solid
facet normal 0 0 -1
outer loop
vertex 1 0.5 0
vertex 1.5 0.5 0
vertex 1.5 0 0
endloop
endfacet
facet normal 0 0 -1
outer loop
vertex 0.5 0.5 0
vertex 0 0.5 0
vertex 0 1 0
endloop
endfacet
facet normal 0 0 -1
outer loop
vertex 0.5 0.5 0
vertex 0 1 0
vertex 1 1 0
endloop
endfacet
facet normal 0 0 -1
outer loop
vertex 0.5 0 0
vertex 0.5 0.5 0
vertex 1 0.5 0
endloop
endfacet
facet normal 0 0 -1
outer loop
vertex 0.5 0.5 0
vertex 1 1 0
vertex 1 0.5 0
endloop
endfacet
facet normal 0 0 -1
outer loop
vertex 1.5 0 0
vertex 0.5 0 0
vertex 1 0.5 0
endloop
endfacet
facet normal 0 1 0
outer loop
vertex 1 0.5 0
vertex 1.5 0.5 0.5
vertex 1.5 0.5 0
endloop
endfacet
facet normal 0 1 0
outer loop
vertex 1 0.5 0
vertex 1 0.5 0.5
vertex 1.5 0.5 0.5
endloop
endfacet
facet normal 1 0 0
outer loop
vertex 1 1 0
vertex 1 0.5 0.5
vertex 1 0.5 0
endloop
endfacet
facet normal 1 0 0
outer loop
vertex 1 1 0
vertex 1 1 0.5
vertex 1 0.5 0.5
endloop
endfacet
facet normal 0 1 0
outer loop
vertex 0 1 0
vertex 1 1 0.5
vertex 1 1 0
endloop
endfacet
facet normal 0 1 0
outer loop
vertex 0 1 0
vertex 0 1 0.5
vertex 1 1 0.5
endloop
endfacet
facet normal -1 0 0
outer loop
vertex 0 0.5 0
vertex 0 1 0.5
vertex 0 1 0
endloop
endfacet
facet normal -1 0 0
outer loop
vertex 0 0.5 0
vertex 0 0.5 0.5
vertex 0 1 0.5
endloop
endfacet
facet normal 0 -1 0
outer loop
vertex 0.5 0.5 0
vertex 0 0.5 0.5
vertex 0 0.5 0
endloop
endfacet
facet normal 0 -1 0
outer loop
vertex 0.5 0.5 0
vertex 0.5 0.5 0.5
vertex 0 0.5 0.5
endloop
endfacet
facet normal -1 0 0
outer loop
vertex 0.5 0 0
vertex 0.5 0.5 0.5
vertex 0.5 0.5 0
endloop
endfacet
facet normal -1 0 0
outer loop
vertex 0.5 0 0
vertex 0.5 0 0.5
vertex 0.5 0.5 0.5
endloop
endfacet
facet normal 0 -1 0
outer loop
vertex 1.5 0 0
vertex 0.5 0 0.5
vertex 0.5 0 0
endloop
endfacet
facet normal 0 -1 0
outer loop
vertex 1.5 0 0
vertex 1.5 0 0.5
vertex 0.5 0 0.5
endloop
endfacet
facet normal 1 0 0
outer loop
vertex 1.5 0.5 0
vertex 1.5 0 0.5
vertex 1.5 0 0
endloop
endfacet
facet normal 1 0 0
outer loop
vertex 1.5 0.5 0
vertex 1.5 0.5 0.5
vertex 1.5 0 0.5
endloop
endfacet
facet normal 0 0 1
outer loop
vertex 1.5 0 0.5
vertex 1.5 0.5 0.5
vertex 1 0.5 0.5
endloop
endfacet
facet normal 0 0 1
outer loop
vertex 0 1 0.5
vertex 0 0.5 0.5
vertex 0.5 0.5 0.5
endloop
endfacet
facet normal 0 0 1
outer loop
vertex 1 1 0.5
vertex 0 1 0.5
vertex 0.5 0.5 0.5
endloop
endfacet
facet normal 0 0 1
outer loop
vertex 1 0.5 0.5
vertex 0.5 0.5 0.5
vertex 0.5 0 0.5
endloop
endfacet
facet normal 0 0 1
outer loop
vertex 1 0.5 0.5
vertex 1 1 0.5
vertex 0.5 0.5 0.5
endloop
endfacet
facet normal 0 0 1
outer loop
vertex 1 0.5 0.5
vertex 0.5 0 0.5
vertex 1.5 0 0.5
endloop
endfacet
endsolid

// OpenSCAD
// Tetromino (S) for Stacks of Shapes
// by Slashee the Cow
linear_extrude(0.5)
polygon([[0.5,0],[1.5,0],[1.5,0.5],[1,0.5],[1,1],[0,1],[0,0.5],[0.5,0.5]]);
